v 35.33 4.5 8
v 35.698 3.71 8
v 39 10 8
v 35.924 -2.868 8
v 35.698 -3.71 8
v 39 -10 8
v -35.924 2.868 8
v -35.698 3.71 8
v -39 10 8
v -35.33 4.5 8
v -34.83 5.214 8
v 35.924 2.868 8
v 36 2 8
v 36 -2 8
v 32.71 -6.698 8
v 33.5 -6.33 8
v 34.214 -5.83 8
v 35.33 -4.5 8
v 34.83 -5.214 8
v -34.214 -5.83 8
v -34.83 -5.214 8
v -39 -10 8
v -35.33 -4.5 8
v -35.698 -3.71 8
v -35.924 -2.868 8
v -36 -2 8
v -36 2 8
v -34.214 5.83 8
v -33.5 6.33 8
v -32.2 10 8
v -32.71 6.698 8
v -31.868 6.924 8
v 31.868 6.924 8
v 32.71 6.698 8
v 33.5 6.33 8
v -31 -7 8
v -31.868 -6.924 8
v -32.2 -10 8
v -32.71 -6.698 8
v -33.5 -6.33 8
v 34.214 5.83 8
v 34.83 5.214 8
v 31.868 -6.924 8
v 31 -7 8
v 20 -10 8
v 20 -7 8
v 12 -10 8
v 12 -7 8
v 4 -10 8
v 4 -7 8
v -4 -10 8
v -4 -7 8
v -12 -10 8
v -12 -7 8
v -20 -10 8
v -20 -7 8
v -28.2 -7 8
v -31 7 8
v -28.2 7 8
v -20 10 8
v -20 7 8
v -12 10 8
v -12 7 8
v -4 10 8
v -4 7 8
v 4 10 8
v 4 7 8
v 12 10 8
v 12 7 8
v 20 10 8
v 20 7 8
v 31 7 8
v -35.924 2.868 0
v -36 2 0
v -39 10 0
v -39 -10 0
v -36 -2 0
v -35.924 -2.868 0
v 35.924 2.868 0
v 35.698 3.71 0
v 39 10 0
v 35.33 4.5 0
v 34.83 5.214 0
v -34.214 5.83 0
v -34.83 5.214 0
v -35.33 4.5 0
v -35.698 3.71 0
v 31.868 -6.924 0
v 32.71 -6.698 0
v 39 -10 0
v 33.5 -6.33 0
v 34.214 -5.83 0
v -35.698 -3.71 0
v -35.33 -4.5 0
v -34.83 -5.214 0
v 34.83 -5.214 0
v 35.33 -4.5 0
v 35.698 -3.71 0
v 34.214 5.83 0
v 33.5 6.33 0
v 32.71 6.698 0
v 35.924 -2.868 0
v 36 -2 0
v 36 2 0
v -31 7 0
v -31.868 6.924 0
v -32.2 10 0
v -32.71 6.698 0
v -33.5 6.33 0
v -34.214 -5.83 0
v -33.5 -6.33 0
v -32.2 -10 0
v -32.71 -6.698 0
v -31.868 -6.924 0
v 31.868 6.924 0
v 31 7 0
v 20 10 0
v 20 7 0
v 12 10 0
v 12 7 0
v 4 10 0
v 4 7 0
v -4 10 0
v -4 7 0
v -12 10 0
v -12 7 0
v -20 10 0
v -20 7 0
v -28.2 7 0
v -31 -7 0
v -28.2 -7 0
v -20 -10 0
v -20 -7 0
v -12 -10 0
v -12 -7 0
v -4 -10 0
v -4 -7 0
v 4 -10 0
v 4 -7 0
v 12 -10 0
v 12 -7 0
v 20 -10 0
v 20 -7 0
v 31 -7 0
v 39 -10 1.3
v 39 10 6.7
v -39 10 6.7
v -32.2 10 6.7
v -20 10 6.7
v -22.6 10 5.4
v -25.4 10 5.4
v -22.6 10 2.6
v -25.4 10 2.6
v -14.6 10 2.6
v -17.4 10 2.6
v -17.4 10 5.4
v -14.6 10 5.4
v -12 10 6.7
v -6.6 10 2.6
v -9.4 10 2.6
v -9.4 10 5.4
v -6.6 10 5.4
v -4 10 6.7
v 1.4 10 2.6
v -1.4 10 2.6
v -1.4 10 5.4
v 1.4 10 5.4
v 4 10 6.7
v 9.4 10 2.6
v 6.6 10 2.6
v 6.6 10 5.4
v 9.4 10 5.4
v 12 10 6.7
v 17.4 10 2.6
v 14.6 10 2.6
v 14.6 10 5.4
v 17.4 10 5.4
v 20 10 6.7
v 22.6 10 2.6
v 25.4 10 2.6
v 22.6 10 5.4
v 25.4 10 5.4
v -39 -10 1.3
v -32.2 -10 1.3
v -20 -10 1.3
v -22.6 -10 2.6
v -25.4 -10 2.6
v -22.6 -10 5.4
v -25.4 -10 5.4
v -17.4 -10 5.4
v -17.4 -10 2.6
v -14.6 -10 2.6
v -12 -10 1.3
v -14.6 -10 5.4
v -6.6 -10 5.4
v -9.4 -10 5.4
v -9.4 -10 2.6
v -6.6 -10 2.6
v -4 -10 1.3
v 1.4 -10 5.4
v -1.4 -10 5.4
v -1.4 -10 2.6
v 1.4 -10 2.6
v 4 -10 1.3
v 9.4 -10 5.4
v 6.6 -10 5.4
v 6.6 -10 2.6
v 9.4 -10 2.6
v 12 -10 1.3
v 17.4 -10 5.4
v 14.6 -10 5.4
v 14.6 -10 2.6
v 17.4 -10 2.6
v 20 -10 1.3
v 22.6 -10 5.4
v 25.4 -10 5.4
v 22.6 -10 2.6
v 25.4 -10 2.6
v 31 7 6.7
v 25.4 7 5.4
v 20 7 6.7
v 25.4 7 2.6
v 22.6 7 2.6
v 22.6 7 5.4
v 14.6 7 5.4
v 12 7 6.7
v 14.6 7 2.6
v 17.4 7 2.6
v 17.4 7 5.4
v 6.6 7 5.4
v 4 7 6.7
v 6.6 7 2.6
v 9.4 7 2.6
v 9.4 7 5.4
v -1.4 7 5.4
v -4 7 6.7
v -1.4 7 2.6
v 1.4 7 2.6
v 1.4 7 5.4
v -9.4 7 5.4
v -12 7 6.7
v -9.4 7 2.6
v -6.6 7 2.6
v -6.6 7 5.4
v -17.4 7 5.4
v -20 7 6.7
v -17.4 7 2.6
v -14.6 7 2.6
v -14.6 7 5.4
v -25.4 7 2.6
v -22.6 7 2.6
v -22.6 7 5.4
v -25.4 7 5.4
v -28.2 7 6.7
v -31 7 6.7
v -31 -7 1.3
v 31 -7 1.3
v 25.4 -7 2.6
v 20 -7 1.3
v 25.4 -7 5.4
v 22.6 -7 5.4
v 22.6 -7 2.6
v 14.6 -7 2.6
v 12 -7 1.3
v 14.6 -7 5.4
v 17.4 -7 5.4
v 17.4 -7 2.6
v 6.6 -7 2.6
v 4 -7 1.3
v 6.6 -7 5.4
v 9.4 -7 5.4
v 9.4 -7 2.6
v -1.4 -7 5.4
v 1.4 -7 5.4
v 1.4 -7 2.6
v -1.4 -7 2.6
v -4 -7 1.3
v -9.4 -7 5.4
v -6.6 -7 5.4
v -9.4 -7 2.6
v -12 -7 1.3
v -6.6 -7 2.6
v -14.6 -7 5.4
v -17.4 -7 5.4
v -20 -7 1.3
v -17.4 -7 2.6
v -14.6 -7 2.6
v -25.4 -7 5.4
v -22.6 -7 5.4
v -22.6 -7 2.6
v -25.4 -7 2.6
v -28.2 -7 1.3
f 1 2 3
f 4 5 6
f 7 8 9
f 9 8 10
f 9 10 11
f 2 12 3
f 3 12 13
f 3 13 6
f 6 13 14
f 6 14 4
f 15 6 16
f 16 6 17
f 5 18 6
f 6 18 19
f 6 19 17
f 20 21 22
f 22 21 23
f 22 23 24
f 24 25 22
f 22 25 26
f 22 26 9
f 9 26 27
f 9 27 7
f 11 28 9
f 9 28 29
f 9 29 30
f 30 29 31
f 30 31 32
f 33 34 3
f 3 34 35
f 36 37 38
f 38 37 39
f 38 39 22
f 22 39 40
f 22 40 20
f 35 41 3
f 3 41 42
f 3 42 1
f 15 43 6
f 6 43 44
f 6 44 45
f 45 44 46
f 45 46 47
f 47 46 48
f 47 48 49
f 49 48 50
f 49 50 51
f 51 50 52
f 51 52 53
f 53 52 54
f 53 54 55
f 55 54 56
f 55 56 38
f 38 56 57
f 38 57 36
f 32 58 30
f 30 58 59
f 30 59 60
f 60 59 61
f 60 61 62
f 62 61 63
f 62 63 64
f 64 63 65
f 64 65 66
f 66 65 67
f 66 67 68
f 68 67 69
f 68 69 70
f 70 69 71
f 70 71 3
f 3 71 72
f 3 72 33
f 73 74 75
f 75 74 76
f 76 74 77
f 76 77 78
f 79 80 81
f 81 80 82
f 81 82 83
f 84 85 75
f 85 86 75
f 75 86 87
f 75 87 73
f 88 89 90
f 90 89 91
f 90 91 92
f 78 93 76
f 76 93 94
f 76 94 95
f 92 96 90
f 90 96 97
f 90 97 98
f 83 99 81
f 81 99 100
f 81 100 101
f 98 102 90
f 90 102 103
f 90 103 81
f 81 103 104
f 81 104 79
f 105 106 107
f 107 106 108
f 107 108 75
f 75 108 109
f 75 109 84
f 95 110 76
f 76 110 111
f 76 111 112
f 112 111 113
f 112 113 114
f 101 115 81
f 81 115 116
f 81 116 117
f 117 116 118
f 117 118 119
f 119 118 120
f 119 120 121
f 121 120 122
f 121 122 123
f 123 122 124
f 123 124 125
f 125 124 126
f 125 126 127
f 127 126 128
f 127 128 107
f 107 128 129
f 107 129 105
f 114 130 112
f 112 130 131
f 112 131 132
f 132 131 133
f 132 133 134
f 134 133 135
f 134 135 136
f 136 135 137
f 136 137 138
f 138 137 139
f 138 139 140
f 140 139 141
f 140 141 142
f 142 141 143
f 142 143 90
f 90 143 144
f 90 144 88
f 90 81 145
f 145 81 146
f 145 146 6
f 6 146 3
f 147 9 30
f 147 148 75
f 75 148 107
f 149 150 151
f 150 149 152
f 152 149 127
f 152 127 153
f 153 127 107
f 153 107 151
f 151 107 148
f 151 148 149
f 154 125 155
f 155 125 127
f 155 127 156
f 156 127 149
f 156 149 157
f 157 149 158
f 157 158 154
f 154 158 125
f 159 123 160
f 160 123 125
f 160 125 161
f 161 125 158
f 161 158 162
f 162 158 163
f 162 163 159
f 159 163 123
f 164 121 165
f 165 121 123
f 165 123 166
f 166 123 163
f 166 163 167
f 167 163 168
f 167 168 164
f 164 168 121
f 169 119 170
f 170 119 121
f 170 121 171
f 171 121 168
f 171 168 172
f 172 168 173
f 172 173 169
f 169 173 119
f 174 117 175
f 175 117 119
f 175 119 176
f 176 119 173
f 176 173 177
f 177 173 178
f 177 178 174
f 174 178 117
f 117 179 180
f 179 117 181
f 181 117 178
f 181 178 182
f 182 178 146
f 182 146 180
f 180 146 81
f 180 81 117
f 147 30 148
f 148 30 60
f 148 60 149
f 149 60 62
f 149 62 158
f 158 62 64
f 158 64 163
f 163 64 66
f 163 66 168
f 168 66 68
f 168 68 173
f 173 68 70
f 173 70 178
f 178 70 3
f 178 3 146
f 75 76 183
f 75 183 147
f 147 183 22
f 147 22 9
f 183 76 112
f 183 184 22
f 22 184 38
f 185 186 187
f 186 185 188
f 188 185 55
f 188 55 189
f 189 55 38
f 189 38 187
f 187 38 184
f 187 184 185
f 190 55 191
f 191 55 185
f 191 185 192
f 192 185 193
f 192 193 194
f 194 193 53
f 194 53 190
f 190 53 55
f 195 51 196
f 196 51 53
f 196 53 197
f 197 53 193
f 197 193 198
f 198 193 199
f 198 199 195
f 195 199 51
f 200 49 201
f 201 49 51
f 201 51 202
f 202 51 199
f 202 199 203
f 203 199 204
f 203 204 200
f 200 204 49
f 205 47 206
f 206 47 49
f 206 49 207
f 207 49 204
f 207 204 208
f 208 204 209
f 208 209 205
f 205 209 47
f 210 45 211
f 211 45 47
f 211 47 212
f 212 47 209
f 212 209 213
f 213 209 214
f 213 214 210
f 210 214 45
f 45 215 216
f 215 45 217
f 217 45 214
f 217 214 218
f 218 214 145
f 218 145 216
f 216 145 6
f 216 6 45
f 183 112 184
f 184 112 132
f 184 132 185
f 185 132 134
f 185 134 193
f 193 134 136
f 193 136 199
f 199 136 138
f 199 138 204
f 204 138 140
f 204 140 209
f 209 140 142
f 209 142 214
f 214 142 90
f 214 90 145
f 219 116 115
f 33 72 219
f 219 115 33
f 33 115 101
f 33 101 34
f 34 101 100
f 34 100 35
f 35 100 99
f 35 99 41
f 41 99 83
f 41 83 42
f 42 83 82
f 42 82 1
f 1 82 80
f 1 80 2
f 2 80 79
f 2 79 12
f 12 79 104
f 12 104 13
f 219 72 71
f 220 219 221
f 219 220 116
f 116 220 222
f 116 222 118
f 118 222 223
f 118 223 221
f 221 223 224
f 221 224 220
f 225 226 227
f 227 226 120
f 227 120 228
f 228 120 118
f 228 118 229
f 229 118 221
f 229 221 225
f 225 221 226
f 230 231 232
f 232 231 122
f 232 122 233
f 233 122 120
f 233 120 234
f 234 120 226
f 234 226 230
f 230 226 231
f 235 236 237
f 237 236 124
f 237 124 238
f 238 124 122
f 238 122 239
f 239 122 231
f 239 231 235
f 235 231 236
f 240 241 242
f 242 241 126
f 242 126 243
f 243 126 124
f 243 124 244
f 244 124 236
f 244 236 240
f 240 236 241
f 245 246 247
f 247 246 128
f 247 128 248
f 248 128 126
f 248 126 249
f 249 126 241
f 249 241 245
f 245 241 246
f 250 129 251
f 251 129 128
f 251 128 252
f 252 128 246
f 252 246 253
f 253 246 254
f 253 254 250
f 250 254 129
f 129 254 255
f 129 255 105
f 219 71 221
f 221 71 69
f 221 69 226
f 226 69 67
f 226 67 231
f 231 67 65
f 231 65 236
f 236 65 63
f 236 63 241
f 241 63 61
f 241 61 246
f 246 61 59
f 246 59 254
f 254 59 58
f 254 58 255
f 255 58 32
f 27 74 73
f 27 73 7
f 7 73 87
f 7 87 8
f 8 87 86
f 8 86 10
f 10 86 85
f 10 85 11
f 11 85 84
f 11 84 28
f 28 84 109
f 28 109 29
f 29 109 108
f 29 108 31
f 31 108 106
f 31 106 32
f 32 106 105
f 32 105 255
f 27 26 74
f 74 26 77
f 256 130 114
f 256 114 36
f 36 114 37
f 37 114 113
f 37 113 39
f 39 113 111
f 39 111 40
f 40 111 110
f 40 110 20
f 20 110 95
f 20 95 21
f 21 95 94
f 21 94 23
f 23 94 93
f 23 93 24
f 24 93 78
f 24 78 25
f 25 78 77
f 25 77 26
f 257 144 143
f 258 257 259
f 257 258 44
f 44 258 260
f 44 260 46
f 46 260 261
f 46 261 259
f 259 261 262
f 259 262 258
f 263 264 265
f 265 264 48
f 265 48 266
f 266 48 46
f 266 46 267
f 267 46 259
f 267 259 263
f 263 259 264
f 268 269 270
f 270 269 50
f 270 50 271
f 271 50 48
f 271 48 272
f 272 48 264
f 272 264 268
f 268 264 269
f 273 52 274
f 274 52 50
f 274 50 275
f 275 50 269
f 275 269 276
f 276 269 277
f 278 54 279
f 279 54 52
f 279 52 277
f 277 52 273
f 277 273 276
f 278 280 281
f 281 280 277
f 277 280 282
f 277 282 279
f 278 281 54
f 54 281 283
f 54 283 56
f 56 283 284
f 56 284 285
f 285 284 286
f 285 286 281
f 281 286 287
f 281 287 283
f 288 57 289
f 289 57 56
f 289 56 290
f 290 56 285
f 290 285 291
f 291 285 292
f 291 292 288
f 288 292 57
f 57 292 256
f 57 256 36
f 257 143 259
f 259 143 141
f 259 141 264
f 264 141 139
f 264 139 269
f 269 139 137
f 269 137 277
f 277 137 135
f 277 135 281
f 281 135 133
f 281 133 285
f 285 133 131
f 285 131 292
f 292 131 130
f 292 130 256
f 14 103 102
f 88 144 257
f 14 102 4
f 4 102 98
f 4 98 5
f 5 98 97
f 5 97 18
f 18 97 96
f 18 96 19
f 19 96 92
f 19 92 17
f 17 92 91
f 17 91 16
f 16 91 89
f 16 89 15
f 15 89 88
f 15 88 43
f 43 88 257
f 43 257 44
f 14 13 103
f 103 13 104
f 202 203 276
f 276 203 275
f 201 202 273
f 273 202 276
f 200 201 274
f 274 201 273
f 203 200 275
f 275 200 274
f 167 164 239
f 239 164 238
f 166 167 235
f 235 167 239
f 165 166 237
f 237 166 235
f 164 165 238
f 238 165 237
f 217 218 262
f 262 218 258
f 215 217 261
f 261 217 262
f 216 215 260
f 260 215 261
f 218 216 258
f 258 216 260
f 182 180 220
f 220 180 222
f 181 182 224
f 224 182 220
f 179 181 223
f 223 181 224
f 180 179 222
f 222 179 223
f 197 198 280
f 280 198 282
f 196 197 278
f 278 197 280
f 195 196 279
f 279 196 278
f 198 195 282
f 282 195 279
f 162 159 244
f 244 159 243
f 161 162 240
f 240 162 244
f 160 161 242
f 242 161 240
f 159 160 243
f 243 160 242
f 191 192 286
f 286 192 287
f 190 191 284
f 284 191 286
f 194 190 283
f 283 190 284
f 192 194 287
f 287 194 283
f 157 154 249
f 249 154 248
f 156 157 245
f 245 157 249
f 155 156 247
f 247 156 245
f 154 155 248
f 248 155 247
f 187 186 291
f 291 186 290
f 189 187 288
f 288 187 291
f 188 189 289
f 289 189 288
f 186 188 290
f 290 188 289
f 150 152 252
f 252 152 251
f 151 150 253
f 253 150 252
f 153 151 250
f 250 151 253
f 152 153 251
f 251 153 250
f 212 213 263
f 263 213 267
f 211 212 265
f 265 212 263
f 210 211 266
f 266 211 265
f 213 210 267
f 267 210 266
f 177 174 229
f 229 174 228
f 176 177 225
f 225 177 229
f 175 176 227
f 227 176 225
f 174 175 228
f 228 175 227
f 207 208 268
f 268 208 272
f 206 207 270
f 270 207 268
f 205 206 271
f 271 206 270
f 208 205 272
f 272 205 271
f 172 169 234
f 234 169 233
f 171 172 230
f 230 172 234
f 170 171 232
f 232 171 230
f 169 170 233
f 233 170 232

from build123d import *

# Parameters (mm, degrees)
ESBO_O1_W                = 78
ESBO_O1_H                = 20
RESSALTO_EXTRUS_O1_DEPTH = 8
ESBO_O2_W                = 2.8
ESBO_O2_H                = 2.8
CORTE_EXTRUS_O1_DEPTH    = 45.55333882


with BuildPart() as part:
    # Esboço1 → Ressalto-extrusão1 (new body)
    with BuildSketch(Plane.XY):
        Rectangle(ESBO_O1_W, ESBO_O1_H)
        with BuildLine():
            Line((-31, 7), (31, 7))
            ThreePointArc((31, 7), (34.535533906, 5.535533906), (36, 2))
            Line((36, 2), (36, -2))
            ThreePointArc((36, -2), (34.535533906, -5.535533906), (31, -7))
            Line((31, -7), (-31, -7))
            ThreePointArc((-31, -7), (-34.535533906, -5.535533906), (-36, -2))
            Line((-36, -2), (-36, 2))
            ThreePointArc((-36, 2), (-34.535533906, 5.535533906), (-31, 7))
        make_face(mode=Mode.SUBTRACT)
    extrude(amount=RESSALTO_EXTRUS_O1_DEPTH)

    # Esboço2 → Corte-extrusão1 (cut, through all)
    with BuildSketch(Plane(origin=(0, 10, 0), x_dir=(1, 0, 0), z_dir=(0, 1, 0))):
        with Locations((-8, -4)):
            Rectangle(ESBO_O2_W, ESBO_O2_H)
        with Locations((0, -4)):
            Rectangle(ESBO_O2_W, ESBO_O2_H)
        with Locations((-16, -4)):
            Rectangle(ESBO_O2_W, ESBO_O2_H)
        with Locations((-24, -4)):
            Rectangle(ESBO_O2_W, ESBO_O2_H)
        with Locations((24, -4)):
            Rectangle(ESBO_O2_W, ESBO_O2_H)
        with Locations((16, -4)):
            Rectangle(ESBO_O2_W, ESBO_O2_H)
        with Locations((8, -4)):
            Rectangle(ESBO_O2_W, ESBO_O2_H)
    extrude(amount=-CORTE_EXTRUS_O1_DEPTH, mode=Mode.SUBTRACT)


solid = part.part
